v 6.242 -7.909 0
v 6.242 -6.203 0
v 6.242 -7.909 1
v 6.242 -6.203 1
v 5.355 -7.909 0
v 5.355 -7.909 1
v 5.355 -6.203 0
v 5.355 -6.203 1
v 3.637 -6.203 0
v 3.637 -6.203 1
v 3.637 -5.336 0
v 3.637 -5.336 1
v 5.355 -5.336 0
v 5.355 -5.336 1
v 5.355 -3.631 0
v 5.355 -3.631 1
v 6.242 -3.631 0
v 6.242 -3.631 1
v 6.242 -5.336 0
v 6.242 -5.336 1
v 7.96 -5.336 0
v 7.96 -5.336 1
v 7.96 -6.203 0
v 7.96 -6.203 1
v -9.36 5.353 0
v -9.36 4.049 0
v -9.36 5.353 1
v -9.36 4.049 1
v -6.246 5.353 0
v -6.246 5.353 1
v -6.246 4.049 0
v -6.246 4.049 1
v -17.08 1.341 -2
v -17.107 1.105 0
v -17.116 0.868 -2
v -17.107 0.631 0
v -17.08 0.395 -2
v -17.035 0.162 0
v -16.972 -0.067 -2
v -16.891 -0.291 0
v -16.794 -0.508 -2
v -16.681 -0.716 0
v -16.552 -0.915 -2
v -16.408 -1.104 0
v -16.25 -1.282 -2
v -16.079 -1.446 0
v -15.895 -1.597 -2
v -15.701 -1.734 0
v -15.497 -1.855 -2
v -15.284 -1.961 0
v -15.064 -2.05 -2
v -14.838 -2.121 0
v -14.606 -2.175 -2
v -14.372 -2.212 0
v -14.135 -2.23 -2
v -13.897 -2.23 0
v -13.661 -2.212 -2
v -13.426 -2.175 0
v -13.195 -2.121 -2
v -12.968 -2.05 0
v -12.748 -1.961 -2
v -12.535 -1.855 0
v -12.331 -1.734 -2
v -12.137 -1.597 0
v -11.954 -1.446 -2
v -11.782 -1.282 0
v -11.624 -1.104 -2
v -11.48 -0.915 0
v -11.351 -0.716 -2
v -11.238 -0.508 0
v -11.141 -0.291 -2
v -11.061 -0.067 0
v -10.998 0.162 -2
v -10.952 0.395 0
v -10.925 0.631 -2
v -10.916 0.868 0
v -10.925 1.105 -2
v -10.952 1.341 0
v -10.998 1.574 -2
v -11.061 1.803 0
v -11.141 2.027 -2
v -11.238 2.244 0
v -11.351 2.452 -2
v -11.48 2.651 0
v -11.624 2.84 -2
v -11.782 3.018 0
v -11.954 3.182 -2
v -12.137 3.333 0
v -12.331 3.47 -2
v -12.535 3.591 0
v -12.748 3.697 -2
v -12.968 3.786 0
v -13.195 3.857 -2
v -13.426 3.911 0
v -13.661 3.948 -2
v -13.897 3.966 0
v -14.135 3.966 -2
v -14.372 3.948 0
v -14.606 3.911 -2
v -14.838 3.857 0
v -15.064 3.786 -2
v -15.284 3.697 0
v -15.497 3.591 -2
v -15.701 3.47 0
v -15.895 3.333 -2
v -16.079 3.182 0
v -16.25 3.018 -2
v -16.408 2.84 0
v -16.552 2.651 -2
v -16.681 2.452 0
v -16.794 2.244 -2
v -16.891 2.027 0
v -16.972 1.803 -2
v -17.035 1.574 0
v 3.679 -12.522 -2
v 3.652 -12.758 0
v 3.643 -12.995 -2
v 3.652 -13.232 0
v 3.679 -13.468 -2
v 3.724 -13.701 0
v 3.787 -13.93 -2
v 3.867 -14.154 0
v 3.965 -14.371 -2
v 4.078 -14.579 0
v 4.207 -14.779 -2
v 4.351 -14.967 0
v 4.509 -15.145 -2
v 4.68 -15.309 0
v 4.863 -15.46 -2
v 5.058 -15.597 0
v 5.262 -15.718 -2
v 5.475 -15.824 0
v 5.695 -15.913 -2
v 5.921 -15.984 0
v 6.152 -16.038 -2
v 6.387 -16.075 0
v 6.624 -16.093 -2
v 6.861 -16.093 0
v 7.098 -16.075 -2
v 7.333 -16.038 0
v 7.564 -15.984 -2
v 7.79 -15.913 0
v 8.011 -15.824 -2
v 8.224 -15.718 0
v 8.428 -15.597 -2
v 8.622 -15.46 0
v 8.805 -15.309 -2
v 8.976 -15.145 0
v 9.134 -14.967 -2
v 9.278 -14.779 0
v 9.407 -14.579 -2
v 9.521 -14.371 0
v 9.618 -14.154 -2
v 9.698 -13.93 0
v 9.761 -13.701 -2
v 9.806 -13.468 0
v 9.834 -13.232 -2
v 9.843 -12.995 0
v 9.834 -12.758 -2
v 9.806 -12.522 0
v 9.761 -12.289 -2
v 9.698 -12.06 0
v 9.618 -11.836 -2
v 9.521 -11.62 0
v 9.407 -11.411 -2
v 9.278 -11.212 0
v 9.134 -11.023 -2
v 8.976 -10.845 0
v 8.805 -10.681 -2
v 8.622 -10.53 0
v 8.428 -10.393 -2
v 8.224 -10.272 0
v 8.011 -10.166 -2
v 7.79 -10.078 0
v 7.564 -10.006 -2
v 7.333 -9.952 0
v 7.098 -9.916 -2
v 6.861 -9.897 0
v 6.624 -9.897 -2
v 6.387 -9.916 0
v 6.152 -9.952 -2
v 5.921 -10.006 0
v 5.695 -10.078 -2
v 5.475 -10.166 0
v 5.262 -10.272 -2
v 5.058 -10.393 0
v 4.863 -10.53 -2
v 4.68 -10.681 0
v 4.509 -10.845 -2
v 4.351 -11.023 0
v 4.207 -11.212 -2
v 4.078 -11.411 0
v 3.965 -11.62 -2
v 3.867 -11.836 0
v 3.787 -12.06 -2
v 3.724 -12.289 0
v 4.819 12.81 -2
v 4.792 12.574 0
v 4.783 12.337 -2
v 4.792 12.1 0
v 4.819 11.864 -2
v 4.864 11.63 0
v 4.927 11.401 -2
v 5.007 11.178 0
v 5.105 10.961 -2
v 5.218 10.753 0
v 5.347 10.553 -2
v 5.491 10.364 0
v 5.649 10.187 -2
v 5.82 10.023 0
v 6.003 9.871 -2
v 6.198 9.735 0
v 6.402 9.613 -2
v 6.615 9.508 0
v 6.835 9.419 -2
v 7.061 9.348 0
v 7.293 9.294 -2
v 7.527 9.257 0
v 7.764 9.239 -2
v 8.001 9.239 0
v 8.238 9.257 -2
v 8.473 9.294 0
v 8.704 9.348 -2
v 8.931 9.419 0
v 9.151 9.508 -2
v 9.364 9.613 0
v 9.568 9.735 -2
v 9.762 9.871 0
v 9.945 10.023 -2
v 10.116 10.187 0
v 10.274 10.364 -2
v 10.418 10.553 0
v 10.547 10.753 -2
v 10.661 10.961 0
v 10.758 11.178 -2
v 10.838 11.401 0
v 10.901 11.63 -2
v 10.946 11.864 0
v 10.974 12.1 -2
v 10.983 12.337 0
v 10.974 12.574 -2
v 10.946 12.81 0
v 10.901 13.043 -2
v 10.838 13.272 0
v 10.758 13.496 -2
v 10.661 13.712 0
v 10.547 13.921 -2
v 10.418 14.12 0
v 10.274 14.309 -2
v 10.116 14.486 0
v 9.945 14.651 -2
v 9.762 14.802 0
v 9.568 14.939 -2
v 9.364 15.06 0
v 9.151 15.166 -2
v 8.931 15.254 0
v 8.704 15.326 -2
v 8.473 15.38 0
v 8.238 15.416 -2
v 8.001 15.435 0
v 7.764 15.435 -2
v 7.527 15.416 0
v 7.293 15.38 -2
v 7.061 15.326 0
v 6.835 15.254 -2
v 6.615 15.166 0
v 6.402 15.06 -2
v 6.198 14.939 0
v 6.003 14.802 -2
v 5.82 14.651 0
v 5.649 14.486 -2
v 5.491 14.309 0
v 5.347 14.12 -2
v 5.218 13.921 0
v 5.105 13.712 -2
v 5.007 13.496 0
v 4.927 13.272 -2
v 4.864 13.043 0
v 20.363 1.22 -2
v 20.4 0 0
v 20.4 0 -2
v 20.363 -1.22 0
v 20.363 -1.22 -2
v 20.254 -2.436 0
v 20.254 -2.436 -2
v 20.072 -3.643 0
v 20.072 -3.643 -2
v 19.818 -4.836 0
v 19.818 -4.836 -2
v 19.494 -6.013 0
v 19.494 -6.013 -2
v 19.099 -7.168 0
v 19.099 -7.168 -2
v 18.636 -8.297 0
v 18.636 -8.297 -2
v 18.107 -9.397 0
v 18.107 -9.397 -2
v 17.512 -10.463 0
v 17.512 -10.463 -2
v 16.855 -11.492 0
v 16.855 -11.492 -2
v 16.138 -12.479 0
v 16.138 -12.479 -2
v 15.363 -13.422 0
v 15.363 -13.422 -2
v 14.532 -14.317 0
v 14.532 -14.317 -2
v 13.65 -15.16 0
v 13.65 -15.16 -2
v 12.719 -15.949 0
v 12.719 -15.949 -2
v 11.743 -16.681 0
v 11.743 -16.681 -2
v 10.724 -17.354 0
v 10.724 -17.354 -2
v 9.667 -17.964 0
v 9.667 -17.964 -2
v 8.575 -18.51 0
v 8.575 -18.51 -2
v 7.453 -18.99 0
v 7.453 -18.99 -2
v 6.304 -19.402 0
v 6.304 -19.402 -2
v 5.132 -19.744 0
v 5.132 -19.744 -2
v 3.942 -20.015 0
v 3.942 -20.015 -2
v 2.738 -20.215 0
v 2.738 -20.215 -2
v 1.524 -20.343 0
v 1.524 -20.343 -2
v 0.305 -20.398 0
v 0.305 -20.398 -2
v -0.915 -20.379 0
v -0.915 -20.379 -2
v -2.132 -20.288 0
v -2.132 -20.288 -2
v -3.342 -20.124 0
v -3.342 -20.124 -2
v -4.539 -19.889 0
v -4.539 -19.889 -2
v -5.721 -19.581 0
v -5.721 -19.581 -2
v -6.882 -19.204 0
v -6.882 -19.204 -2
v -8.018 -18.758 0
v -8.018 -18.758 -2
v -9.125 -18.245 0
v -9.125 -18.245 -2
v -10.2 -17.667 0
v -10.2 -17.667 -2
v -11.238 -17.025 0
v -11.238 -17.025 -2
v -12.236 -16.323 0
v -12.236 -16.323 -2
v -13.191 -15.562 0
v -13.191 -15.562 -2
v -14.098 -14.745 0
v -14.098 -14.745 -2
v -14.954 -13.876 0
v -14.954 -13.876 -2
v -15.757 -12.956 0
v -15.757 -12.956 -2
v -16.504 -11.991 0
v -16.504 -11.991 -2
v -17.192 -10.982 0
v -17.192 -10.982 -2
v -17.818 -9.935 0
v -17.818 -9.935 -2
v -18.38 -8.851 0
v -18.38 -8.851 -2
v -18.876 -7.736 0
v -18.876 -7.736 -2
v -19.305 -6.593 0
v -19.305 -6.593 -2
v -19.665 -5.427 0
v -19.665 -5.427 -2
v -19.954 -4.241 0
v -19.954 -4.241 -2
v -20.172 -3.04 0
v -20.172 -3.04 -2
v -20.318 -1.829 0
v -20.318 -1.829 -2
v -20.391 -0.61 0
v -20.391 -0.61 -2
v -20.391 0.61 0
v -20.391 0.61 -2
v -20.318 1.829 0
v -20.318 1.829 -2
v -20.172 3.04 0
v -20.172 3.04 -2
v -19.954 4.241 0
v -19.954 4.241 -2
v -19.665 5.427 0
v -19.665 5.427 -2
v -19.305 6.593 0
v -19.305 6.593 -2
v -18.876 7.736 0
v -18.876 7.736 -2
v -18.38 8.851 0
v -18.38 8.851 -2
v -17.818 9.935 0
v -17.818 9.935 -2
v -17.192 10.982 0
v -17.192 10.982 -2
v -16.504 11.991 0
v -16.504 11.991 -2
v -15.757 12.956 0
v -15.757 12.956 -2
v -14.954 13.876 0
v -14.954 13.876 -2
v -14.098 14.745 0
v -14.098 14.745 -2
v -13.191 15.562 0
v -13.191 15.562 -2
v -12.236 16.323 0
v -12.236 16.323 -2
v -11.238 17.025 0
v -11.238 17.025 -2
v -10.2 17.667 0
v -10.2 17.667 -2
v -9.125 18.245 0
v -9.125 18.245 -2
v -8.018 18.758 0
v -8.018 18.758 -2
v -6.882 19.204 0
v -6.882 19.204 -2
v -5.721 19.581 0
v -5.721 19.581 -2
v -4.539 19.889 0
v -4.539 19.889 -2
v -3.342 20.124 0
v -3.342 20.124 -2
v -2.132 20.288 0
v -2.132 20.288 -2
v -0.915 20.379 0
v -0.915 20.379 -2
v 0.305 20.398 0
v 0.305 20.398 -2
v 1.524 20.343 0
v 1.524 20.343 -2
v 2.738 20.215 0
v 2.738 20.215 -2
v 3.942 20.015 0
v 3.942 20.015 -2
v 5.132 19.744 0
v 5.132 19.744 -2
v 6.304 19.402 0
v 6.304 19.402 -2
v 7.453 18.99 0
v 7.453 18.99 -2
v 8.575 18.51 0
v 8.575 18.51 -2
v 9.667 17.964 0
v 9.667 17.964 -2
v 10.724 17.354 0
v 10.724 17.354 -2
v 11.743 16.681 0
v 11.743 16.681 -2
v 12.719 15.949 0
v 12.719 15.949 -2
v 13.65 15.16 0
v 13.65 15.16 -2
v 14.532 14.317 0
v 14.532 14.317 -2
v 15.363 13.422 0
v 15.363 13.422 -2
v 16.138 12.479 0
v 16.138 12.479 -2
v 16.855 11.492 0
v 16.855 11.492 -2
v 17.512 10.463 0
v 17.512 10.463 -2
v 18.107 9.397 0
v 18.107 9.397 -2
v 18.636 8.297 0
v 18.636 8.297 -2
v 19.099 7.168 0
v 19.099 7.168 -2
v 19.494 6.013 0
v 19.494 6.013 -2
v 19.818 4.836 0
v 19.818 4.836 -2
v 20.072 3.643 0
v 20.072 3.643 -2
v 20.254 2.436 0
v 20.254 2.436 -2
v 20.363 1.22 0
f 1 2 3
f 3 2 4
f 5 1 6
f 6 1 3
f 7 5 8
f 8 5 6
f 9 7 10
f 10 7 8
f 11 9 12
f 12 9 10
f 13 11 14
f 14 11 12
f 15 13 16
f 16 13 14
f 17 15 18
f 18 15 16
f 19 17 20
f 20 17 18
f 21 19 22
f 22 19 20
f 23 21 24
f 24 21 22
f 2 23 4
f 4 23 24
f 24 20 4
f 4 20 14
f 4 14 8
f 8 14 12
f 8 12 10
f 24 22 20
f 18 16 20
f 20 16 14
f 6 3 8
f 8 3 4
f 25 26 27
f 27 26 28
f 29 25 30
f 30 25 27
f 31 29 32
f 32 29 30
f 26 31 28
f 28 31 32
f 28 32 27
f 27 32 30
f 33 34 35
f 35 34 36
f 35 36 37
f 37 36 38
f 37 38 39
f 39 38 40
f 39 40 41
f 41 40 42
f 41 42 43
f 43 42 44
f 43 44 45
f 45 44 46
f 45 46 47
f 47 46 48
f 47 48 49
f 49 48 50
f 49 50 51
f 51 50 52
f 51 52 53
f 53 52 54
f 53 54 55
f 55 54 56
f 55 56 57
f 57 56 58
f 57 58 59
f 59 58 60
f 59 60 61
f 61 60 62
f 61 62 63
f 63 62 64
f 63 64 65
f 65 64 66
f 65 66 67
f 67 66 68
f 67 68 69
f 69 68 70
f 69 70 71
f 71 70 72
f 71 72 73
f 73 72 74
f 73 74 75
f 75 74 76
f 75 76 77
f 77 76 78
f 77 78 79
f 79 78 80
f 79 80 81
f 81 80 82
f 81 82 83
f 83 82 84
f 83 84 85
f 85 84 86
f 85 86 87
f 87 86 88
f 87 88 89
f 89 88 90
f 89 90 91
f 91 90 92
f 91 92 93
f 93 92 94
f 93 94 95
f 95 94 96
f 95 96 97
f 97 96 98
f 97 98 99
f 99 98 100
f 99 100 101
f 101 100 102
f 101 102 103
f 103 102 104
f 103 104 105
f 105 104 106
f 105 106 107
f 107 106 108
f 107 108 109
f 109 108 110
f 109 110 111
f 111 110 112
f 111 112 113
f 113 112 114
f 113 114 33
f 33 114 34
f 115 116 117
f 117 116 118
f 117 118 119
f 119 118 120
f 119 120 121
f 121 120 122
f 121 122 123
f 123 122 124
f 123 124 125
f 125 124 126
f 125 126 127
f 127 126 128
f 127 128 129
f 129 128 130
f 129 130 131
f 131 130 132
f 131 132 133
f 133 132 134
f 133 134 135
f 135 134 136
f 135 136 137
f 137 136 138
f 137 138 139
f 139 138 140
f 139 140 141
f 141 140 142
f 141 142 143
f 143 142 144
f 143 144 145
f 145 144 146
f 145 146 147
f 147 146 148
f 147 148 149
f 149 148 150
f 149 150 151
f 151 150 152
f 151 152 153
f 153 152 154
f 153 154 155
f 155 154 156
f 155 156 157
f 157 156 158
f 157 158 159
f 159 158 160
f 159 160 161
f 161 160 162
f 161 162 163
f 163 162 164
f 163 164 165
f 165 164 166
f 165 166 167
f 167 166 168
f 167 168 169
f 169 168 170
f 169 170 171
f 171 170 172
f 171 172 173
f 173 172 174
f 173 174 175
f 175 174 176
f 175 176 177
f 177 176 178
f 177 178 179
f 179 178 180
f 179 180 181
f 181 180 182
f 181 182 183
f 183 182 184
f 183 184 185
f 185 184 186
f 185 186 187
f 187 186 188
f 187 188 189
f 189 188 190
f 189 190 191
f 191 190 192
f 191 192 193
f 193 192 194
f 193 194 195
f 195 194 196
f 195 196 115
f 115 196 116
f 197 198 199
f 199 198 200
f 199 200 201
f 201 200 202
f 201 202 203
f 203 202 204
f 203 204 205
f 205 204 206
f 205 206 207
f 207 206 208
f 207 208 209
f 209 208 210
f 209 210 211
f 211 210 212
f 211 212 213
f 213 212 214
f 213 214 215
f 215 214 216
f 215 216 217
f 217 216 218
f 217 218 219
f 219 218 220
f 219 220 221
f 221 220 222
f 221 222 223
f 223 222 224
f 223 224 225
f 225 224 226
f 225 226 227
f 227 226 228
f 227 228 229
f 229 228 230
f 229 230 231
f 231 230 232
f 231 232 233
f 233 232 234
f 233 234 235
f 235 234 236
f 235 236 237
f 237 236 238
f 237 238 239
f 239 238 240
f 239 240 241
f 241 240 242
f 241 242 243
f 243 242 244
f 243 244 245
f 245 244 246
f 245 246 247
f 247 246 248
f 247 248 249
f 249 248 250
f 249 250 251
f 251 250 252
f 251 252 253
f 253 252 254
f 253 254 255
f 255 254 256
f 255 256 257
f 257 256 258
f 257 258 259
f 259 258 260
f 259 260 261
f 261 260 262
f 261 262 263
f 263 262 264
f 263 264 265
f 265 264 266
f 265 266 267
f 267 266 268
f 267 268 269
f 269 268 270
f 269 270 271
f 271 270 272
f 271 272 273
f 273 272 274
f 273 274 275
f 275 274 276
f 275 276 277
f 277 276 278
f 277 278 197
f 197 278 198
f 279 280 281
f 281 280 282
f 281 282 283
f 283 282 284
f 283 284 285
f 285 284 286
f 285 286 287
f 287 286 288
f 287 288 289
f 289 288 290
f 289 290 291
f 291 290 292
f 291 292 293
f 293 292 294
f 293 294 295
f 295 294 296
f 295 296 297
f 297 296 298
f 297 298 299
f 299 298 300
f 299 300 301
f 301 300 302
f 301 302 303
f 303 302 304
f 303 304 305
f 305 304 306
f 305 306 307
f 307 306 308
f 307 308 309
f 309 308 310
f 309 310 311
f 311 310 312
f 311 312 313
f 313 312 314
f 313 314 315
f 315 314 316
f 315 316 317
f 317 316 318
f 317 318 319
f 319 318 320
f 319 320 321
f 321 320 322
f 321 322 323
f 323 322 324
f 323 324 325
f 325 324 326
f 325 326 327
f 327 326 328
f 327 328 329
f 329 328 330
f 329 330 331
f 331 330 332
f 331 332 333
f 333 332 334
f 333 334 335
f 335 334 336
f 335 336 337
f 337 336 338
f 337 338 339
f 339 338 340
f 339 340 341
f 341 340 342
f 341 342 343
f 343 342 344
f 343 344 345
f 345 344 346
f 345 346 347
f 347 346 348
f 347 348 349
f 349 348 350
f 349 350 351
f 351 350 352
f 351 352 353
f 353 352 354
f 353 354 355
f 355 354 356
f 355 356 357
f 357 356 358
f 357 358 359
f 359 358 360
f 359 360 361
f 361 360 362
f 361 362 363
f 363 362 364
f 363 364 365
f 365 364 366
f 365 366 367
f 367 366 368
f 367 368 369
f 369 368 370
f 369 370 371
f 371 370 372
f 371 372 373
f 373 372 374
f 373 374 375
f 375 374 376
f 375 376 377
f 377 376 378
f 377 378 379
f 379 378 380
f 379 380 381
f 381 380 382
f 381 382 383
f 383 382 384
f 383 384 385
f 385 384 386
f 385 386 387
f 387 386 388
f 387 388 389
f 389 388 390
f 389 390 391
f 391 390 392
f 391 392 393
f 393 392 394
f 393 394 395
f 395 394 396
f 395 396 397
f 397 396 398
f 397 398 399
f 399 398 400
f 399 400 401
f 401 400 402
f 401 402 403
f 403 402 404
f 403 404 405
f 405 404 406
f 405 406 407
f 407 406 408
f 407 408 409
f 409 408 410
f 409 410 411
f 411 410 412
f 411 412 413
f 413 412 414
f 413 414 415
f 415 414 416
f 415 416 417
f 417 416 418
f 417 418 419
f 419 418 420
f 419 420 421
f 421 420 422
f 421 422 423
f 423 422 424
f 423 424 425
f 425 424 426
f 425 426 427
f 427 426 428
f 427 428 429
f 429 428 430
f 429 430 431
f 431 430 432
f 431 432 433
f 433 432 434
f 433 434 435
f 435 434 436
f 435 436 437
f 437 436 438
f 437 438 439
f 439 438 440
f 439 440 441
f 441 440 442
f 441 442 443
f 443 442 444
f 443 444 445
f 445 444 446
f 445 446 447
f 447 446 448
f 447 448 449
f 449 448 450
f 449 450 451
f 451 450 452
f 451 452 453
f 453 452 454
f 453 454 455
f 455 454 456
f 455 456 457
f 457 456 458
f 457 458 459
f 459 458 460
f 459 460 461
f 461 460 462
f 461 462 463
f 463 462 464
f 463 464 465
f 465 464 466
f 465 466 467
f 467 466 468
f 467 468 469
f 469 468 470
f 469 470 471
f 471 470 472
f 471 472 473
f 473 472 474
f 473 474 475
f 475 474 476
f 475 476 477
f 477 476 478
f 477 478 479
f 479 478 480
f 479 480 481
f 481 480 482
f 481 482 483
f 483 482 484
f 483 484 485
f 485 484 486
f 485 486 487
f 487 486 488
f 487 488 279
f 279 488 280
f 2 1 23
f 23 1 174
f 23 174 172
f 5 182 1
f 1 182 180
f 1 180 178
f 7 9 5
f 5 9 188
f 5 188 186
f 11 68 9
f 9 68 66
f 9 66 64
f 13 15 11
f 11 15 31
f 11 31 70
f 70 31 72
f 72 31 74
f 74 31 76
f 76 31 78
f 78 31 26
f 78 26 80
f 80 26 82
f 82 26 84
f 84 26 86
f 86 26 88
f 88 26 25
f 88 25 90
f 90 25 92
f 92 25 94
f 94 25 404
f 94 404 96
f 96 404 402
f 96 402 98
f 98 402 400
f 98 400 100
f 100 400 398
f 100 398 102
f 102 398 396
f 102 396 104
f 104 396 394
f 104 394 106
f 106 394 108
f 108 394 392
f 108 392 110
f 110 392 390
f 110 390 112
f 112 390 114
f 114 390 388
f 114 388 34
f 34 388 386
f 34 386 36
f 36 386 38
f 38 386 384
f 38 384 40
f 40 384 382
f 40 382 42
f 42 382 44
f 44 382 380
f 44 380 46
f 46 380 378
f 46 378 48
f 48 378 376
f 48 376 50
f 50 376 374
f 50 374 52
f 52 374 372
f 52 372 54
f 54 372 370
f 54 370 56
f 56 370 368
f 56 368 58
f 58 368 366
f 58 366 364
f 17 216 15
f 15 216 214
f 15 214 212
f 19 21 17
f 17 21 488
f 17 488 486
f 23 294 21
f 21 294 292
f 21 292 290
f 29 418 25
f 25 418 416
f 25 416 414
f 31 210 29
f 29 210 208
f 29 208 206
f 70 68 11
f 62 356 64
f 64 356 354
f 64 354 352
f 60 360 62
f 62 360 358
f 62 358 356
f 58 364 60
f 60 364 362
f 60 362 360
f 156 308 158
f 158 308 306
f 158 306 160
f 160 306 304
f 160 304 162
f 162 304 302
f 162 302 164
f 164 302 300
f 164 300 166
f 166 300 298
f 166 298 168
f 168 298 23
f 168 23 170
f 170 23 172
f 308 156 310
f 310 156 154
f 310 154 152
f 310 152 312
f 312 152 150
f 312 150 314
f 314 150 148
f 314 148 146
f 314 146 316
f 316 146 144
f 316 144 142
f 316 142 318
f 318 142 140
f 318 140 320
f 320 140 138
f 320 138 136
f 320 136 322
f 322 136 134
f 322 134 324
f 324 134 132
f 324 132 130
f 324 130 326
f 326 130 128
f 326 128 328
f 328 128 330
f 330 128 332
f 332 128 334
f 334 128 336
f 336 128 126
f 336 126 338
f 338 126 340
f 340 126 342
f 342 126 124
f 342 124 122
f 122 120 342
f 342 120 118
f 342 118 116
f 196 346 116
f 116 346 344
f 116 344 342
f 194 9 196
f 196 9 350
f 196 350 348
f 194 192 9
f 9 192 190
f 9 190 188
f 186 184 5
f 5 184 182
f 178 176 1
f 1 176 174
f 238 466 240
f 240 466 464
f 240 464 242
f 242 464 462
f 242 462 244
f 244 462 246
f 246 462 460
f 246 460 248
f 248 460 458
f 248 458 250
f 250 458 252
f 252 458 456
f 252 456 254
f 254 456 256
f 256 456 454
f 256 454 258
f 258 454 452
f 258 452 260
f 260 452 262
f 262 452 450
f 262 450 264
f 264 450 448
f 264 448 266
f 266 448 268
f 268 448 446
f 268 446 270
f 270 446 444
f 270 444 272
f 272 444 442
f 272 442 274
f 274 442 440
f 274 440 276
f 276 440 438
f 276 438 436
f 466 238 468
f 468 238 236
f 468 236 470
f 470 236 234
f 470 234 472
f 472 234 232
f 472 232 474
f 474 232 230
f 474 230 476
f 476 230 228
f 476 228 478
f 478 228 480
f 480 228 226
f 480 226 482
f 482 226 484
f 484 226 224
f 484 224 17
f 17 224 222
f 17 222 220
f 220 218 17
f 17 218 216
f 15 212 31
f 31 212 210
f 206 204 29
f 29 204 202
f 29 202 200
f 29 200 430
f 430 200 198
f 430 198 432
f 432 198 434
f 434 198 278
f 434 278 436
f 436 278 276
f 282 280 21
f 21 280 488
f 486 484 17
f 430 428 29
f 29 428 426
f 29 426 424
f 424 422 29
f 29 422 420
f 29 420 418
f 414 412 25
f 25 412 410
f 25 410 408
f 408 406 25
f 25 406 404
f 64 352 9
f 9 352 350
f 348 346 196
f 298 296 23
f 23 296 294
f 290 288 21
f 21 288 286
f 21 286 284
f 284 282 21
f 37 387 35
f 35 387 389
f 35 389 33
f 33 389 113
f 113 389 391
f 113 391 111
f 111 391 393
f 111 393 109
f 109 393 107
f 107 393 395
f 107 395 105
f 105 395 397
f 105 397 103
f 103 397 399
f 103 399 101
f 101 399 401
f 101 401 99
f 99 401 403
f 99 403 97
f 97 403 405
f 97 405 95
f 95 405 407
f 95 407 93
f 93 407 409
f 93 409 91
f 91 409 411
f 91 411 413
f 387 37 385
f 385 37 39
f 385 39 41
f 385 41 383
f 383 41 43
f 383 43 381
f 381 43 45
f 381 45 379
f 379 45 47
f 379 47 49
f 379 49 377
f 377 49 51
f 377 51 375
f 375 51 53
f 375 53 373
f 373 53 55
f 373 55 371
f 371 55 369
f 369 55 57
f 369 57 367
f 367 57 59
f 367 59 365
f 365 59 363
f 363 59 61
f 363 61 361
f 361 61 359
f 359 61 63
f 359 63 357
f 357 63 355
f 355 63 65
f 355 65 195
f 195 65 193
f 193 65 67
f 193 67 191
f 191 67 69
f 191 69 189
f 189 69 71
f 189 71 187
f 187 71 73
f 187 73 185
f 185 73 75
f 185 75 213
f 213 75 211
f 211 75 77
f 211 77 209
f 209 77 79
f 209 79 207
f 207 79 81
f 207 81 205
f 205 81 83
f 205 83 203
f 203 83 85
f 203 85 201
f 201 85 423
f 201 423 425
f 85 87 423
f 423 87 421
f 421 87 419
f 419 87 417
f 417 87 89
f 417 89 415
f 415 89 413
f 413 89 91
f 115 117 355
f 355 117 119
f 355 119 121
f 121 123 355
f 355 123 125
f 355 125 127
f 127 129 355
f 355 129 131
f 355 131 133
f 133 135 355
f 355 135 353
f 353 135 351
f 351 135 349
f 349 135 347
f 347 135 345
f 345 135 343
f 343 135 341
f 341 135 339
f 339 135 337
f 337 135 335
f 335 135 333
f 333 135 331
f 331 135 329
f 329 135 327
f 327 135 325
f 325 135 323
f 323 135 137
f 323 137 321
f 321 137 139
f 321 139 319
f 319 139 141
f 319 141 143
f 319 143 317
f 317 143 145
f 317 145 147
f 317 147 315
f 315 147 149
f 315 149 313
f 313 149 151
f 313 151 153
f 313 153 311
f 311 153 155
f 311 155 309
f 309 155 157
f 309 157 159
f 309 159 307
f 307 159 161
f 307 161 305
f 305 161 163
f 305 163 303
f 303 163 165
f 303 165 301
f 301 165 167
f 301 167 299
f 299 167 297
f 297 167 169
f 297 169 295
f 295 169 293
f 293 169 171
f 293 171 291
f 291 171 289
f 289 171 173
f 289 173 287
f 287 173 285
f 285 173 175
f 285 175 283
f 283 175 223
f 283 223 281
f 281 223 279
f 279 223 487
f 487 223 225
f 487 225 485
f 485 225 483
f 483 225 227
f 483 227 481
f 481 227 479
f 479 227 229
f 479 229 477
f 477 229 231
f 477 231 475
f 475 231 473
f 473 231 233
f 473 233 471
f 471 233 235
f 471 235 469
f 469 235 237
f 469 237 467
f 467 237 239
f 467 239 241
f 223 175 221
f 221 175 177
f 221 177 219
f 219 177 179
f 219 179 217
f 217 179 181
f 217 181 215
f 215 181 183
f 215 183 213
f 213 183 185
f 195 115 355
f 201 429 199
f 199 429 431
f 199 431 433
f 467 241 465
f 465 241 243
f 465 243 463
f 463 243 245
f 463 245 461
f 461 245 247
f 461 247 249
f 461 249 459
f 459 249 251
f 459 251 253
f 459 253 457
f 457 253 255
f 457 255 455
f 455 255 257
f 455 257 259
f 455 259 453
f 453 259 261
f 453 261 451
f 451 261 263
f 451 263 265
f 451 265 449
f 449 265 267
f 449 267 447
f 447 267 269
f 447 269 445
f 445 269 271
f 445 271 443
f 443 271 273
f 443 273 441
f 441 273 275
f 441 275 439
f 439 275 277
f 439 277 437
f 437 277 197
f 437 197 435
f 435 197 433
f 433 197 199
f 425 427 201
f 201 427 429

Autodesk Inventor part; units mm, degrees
ref_plane "YZ Plane" through (0, 0, 0) normal (1, 0, 0) x (0, 1, 0)
ref_plane "XZ Plane" through (0, 0, 0) normal (0, 1, 0) x (-1, 0, 0)
ref_plane "XY Plane" through (0, 0, 0) normal (0, 0, 1) x (1, 0, 0)
sketch "Skizze1" plane through (0, 0, 0) normal (0, 0, 1) x (1, 0, 0)
  circle A0 centre (0, 0) radius 20.4
  dimension "d0" = 40.8
extrude "Extrusion1" add sketch "Skizze1" against normal blind 2
sketch "Skizze2" plane through (0, 0, 0) normal (0, 0, 1) x (1, 0, 0)
  circle A0 centre (10.4908, -0.4387) radius 8.6464 projected
  circle A1 centre (-5.6254, -8.866) radius 9 projected
  circle A2 centre (-4.8655, 9.3047) radius 8.6464 projected
  circle A3 centre (0, 0) radius 20.5 projected
  circle A4 centre (-14.0161, 0.868) radius 3.1
  line L0 (-4.8655, 0.6582) -> (-4.8655, 0.1019) construction
  line L1 (-20.4642, 1.2118) -> (10.4908, -0.4387) construction
  circle A5 centre (6.2563, -12.5723) radius 3.1
  circle A6 centre (7.7598, 11.7043) radius 3.1
  point P0 (0, 0)
  point P1 (6.7426, -12.9951)
  point P2 (7.8827, 12.3368)
  dimension "d15" = 6.2
  dimension "d22" = 360
hole "Bohrung1" at (6.7426, -12.9951, 0) at (-14.0161, 0.868, 0) at (7.8827, 12.3368, 0) direction (0, 0, -1) diameter 6.2 end through all
sketch "Skizze3" plane through (0, 0, 0) normal (0, 0, 1) x (1, 0, 0)
  line L0 (2.9844, -3.6305) -> (8.6125, -3.6305) construction
  line L1 (8.6125, -3.6305) -> (8.6125, -10.4322) construction
  line L2 (8.6125, -10.4322) -> (2.9844, -10.4322) construction
  line L3 (2.9844, -10.4322) -> (2.9844, -3.6305) construction
  line L4 (-9.8763, 5.3535) -> (-5.1258, 5.3535) construction
  line L5 (-5.1258, 5.3535) -> (-5.1258, 3.2524) construction
  line L6 (-5.1258, 3.2524) -> (-9.8763, 3.2524) construction
  line L7 (-9.8763, 3.2524) -> (-9.8763, 5.3535) construction
  line L8 (7.9601, -6.2035) -> (6.2421, -6.2035)
  line L9 (6.2421, -6.2035) -> (6.2421, -7.9093)
  line L10 (6.2421, -7.9093) -> (5.3548, -7.9093)
  line L11 (5.3548, -7.9093) -> (5.3548, -6.2035)
  line L12 (5.3548, -6.2035) -> (3.6368, -6.2035)
  line L13 (3.6368, -6.2035) -> (3.6368, -5.3364)
  line L14 (3.6368, -5.3364) -> (5.3548, -5.3364)
  line L15 (5.3548, -5.3364) -> (5.3548, -3.6305)
  line L16 (5.3548, -3.6305) -> (6.2421, -3.6305)
  line L17 (6.2421, -3.6305) -> (6.2421, -5.3364)
  line L18 (6.2421, -5.3364) -> (7.9601, -5.3364)
  line L19 (7.9601, -5.3364) -> (7.9601, -6.2035)
  line L20 (-6.2458, 4.0488) -> (-9.3601, 4.0488)
  line L21 (-9.3601, 4.0488) -> (-9.3601, 5.3535)
  line L22 (-9.3601, 5.3535) -> (-6.2458, 5.3535)
  line L23 (-6.2458, 5.3535) -> (-6.2458, 4.0488)
  point P0 (0, 0)
extrude "Extrusion2" add sketch "Skizze3" along normal blind 1
properties part number "akkufach_deckel"
